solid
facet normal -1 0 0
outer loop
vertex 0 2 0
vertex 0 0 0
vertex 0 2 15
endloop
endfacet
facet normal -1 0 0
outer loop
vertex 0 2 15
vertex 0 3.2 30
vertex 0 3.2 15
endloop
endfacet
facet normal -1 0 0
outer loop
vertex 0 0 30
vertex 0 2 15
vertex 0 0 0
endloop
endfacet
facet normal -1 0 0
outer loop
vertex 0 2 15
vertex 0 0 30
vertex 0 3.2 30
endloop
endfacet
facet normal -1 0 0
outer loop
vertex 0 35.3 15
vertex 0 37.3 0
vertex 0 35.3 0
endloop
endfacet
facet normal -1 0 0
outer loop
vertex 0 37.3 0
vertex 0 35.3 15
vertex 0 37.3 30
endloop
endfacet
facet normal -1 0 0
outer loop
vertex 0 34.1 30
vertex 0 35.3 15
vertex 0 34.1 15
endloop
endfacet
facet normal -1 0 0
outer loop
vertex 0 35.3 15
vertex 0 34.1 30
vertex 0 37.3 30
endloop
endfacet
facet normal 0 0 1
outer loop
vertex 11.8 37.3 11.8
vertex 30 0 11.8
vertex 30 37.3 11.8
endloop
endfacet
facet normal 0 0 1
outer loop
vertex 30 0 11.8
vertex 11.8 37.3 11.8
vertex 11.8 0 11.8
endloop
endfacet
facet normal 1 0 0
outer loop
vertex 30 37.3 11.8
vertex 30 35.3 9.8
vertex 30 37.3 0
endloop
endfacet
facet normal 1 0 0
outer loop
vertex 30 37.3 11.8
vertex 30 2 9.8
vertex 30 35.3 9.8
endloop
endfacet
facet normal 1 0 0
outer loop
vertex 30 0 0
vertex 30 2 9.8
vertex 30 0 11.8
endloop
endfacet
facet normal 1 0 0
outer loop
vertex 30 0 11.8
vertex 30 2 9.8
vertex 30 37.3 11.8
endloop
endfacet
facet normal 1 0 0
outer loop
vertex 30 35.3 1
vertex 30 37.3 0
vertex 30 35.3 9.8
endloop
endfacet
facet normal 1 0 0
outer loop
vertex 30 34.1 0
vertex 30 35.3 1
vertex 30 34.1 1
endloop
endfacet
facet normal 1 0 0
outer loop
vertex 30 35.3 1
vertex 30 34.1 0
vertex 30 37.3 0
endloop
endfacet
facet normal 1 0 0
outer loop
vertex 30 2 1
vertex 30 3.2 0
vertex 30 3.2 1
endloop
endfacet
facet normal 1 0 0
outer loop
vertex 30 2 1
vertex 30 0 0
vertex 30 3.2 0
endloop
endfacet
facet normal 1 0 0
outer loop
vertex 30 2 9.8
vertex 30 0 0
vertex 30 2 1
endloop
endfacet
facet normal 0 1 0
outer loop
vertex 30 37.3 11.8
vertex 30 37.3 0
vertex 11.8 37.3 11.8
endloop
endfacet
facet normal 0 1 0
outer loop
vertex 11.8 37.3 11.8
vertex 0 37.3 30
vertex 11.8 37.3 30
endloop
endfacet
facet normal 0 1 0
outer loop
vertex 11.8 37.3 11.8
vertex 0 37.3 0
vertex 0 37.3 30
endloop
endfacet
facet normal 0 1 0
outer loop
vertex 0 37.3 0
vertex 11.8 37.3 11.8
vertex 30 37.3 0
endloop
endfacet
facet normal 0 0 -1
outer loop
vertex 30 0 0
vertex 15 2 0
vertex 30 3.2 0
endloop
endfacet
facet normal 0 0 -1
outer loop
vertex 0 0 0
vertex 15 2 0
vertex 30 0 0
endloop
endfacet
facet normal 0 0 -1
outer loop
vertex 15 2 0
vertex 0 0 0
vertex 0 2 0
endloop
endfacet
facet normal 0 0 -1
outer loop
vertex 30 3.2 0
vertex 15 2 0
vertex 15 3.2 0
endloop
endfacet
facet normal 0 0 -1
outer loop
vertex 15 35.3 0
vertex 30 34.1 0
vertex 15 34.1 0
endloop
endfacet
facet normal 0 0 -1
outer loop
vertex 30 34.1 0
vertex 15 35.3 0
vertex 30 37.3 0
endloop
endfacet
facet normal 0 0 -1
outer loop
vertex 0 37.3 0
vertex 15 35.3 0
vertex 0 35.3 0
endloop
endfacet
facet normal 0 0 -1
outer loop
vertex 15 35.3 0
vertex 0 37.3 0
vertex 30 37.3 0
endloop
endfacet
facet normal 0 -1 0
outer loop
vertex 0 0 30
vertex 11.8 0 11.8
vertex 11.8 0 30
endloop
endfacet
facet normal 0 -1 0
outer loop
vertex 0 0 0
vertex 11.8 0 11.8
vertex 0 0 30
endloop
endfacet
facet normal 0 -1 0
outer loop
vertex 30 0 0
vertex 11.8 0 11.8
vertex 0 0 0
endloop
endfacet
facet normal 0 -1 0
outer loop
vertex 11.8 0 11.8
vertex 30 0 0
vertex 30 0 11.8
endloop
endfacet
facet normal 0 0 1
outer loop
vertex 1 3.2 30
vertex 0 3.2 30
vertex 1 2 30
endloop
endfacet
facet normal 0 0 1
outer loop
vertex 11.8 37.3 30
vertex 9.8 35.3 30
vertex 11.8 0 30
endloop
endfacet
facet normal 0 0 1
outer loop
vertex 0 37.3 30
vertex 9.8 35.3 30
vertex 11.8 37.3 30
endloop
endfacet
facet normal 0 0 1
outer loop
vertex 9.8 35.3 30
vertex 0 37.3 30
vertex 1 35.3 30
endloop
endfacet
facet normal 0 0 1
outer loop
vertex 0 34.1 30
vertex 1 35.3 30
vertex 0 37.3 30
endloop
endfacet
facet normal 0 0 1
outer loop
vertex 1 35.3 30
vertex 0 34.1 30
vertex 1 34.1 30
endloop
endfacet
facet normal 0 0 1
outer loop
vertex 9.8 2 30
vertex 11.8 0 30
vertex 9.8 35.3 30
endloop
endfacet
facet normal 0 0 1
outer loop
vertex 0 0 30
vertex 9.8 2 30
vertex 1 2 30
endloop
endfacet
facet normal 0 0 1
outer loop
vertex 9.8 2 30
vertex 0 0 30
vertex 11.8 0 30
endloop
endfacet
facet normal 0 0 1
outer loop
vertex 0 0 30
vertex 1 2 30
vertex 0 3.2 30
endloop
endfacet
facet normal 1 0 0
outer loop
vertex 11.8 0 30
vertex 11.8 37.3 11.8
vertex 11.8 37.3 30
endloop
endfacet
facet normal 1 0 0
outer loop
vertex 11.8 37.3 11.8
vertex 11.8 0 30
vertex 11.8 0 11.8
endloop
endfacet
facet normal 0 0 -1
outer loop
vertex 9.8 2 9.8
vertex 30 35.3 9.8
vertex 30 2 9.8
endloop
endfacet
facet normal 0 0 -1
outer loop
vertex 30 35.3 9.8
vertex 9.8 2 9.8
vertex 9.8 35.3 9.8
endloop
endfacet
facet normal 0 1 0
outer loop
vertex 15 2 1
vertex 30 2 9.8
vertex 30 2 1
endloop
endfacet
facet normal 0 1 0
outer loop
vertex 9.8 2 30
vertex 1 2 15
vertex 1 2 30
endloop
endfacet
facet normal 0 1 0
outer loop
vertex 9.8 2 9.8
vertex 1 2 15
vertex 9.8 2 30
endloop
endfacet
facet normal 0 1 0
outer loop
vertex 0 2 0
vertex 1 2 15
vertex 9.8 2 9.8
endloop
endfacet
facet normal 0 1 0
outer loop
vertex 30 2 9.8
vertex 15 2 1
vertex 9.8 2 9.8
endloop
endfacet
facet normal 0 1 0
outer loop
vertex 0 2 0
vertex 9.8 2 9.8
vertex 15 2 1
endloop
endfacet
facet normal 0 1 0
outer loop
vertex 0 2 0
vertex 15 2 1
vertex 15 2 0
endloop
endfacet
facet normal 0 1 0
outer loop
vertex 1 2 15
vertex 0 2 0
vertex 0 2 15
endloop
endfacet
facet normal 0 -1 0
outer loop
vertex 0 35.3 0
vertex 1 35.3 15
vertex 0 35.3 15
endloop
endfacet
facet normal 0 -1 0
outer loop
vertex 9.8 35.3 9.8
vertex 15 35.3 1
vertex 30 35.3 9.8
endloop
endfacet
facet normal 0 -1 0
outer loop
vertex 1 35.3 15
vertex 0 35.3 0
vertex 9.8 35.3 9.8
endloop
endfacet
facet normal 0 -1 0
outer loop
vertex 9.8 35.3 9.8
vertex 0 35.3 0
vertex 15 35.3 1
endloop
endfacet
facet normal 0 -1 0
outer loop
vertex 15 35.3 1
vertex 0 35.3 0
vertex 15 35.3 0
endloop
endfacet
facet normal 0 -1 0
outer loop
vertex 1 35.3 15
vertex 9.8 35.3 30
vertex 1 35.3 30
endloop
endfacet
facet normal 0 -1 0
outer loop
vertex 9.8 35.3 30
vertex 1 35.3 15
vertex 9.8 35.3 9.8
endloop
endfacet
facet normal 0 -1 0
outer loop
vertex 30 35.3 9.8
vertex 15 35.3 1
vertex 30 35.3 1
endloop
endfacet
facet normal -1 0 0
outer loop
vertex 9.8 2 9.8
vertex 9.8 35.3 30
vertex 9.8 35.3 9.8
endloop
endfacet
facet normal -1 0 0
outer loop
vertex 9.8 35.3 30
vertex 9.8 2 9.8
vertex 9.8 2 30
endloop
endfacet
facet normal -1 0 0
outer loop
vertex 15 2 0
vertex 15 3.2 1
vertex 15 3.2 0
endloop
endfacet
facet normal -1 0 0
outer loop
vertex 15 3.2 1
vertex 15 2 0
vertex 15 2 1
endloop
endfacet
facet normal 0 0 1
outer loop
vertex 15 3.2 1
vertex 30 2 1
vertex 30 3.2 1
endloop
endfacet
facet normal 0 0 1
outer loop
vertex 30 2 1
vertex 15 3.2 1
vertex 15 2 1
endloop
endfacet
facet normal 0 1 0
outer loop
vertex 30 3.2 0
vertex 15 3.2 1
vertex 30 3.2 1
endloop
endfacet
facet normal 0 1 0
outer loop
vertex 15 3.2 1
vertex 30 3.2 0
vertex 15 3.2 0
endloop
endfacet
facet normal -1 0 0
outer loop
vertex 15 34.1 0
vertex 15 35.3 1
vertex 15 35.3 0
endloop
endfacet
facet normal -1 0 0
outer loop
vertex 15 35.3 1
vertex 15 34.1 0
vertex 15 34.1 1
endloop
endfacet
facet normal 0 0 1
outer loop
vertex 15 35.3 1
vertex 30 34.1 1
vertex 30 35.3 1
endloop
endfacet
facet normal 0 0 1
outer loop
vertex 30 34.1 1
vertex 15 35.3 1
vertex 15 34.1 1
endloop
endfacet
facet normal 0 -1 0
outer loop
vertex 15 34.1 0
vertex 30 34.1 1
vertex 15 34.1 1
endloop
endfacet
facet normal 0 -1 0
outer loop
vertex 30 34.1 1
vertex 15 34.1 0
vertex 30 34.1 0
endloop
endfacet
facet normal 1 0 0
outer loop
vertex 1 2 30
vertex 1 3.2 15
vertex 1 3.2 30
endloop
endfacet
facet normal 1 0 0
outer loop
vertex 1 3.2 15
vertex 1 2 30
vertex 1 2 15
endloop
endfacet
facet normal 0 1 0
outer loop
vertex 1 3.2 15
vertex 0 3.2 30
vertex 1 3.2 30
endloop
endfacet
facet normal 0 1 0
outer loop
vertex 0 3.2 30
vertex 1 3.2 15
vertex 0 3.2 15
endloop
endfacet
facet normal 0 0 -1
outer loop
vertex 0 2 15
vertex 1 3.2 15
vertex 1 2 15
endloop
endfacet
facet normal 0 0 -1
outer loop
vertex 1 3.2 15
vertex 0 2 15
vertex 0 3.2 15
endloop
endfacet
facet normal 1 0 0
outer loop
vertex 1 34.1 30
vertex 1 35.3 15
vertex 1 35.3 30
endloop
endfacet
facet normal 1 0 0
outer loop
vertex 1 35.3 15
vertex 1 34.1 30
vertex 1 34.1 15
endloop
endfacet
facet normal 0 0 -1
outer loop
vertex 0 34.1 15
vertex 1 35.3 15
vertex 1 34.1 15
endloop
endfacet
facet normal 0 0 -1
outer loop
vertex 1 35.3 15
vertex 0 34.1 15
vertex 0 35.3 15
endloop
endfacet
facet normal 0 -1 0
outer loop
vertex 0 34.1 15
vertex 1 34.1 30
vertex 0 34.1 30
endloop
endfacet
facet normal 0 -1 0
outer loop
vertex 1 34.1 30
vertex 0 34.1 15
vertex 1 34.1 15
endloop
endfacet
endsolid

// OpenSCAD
$fa = 1;
$fs = 0.2;

depth = 9.8;
width = 33.3;
length = 30;

thickness = 2;

tab_thickness = 1;
tab_depth = 1.2;
blank = 15;

difference() {
    union() {
        cube([length, width + 2*thickness, depth + thickness]);
        translate([depth+thickness, 0, 0])
        rotate(-90, [0,1,0])
        cube([length, width + 2*thickness, depth + thickness]);
        }
    
    translate([0, thickness, 0]) {
        cube([length, width, depth]);
    translate([depth, 0, 0])
    rotate(-90, [0,1,0])
    cube([length, width, depth]);
        }    
}

translate([blank, 0, 0])
cube([length-blank, thickness+tab_depth, tab_thickness]);

translate([blank, 0, 0])
translate([0, (width+2*thickness) - (thickness+tab_depth), 0])
cube([length-blank, thickness+tab_depth, tab_thickness]);

translate([0,0,blank])
cube([tab_thickness, thickness+tab_depth, length-blank]);

translate([0,0,blank])
translate([0, (width+2*thickness) - (thickness+tab_depth), 0])
cube([tab_thickness, thickness+tab_depth, length-blank]);
